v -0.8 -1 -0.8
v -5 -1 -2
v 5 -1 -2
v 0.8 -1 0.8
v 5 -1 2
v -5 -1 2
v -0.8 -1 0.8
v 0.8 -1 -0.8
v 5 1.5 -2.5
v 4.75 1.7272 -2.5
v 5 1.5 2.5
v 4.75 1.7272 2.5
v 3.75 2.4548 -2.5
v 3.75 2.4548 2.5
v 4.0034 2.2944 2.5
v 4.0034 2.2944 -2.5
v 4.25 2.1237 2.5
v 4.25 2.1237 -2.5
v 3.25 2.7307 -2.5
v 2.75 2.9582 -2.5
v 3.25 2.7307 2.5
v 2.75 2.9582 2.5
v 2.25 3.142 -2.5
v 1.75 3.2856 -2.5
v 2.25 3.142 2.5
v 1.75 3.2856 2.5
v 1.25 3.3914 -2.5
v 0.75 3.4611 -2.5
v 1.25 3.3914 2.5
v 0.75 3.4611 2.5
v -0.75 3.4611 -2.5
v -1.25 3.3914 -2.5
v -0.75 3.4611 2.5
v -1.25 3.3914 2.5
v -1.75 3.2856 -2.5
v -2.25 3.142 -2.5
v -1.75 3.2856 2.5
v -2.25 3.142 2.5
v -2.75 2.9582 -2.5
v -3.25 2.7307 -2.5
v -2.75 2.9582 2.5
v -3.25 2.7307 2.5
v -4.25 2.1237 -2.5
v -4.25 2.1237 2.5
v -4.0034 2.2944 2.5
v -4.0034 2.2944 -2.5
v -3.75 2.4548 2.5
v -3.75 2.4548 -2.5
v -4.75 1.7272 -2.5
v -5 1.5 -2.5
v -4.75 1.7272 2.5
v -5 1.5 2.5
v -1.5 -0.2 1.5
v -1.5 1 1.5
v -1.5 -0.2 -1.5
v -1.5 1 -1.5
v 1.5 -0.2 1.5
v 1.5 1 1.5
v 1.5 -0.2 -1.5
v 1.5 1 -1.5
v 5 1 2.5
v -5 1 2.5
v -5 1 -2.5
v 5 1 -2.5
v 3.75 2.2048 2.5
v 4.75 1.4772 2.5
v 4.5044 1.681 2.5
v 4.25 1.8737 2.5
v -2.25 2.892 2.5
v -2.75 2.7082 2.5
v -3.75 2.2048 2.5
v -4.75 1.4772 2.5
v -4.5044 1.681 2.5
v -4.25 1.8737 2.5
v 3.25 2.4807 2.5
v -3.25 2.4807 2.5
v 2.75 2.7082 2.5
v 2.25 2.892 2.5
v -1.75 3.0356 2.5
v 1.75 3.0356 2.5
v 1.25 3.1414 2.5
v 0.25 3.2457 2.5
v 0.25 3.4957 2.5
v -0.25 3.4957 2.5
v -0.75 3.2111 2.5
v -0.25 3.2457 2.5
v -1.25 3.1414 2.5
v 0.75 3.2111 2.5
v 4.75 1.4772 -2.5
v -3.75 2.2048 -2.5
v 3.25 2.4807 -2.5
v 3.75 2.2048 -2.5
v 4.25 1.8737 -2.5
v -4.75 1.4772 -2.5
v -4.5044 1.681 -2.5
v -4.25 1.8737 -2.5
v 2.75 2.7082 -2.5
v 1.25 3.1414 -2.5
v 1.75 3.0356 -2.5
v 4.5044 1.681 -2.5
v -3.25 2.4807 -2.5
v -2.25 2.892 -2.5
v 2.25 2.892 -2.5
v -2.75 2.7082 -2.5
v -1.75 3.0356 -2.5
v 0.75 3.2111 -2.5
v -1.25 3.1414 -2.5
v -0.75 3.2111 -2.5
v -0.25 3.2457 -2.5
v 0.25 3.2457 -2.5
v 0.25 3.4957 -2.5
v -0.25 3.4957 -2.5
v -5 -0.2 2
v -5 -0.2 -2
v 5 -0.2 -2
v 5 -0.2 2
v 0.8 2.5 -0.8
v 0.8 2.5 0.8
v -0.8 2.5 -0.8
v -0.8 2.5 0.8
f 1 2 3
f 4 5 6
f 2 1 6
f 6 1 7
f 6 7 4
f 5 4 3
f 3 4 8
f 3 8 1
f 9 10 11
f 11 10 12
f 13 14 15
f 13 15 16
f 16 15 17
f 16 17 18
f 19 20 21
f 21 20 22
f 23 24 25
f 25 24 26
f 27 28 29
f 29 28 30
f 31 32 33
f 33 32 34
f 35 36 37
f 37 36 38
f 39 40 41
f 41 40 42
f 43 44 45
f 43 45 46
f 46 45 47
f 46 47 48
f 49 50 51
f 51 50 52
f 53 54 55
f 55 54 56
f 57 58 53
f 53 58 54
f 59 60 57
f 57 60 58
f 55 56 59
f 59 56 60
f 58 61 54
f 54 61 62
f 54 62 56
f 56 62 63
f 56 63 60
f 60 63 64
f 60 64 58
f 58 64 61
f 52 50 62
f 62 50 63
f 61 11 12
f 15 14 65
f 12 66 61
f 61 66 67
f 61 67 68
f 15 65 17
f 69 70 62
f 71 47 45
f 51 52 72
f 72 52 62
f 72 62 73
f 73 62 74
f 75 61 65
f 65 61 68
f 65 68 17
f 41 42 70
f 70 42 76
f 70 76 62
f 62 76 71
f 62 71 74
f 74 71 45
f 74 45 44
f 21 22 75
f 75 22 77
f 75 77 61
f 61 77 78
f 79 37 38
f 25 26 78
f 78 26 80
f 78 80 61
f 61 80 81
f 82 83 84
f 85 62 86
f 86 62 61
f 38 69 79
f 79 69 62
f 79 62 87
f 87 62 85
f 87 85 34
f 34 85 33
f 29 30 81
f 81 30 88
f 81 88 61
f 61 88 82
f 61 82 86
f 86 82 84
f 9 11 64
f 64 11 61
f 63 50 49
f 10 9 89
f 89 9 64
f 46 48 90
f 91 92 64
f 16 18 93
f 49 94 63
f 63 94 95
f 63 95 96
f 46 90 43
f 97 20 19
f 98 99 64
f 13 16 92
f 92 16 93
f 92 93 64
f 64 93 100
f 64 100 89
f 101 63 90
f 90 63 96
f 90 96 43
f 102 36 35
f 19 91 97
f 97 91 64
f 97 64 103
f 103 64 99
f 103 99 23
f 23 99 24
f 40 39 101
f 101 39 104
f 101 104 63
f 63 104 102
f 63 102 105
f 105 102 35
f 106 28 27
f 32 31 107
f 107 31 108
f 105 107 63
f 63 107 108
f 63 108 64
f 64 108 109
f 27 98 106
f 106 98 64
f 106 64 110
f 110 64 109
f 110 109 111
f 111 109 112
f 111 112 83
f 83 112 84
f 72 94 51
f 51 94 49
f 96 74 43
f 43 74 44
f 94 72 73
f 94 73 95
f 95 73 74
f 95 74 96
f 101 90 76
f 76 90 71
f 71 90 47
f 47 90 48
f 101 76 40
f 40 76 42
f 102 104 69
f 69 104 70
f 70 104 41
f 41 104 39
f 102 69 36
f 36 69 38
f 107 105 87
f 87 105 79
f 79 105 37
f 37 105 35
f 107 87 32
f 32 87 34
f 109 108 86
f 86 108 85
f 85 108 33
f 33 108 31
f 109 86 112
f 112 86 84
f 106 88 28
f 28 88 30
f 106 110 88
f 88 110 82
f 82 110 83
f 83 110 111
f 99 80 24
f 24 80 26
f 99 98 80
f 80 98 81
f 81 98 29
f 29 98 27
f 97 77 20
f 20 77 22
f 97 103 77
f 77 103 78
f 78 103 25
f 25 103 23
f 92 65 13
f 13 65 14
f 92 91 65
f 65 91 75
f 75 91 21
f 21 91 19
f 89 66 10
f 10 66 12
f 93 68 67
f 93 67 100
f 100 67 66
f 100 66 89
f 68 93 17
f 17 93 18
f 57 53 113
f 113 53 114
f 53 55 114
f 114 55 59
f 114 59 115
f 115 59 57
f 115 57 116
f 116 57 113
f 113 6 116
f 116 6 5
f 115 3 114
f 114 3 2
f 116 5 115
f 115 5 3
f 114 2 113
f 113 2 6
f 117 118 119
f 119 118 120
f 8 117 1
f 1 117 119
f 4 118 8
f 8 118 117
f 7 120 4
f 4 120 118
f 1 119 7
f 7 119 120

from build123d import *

# Parameters (mm, degrees)
SKETCH_1_W          = 10
SKETCH_1_H          = 5
EXTRUDE_1_DEPTH     = 0.5
SKETCH_2_W          = 3
SKETCH_2_H          = 3
EXTRUDE_2_DEPTH     = 0.5
SKETCH_3_W          = 10
SKETCH_3_H          = 5
EXTRUDE_3_DEPTH     = 0.5
EXTRUDE_4_DEPTH     = 5
CUT_EXTRUDE_3_DEPTH = 5
SKETCH_6_W          = 1.6
SKETCH_6_H          = 1.6
CUT_EXTRUDE_4_DEPTH = 2.5
SKETCH_7_W          = 10
SKETCH_7_H          = 0.5
CUT_EXTRUDE_5_DEPTH = 1
SKETCH_8_W          = 10
SKETCH_8_H          = 4
EXTRUDE_5_DEPTH     = 1
SKETCH_11_W         = 10
SKETCH_11_H         = 4
SKETCH_11_W_2       = 3
SKETCH_11_H_2       = 3
CUT_EXTRUDE_6_DEPTH = 0.7
CUT_EXTRUDE_7_REACH = 8.595
SKETCH_6_2_W        = 1.6
SKETCH_6_2_H        = 1.6


with BuildPart() as part:
    # 草图1 → 凸台-拉伸1 (new body)
    with BuildSketch(Plane(origin=(0, 0, 0), x_dir=(1, 0, 0), z_dir=(0, 1, 0))):
        Rectangle(SKETCH_1_W, SKETCH_1_H)
    extrude(amount=EXTRUDE_1_DEPTH)

    # 草图2 → 凸台-拉伸2 (add)
    with BuildSketch(Plane(origin=(0, 0.5, 0), x_dir=(1, 0, 0), z_dir=(0, 1, 0))):
        Rectangle(SKETCH_2_W, SKETCH_2_H)
    extrude(amount=EXTRUDE_2_DEPTH)

    # 草图3 → 凸台-拉伸3 (add)
    with BuildSketch(Plane(origin=(0, 1, 0), x_dir=(1, 0, 0), z_dir=(0, 1, 0))):
        Rectangle(SKETCH_3_W, SKETCH_3_H)
    extrude(amount=EXTRUDE_3_DEPTH)

    # 草图4 → 凸台-拉伸4 (add)
    with BuildSketch(Plane.XY.offset(2.5)):
        with BuildLine():
            Line((-5, 1.5), (5, 1.5))
            ThreePointArc((5, 1.5), (0, 3.5), (-5, 1.5))
        make_face()
    extrude(amount=-EXTRUDE_4_DEPTH)

    # 草图5 → 切除-拉伸3 (cut)
    with BuildSketch(Plane.XY.offset(2.5)):
        with BuildLine():
            Line((-4.75, 3.826153858), (-4.25, 3.826153858))
            Line((-4.25, 3.826153858), (-4.25, 1.873670062))
            ThreePointArc((-4.25, 1.873670062), (-4.504363668, 1.680951324), (-4.75, 1.477225575))
            Line((-4.75, 1.477225575), (-4.75, 3.826153858))
        make_face()
        with BuildLine():
            Line((-3.75, 3.826153858), (-3.75, 2.204836823))
            ThreePointArc((-3.75, 2.204836823), (-3.502717622, 2.347713704), (-3.25, 2.480740698))
            Line((-3.25, 2.480740698), (-3.25, 3.826153858))
            Line((-3.25, 3.826153858), (-3.75, 3.826153858))
        make_face()
        with BuildLine():
            Line((-2.75, 3.826153858), (-2.75, 2.708203932))
            ThreePointArc((-2.75, 2.708203932), (-2.501688927, 2.804708114), (-2.25, 2.892024376))
            Line((-2.25, 2.892024376), (-2.25, 3.826153858))
            Line((-2.25, 3.826153858), (-2.75, 3.826153858))
        make_face()
        with BuildLine():
            Line((-1.75, 3.826153858), (-1.75, 3.03562364))
            ThreePointArc((-1.75, 3.03562364), (-1.500932598, 3.092933197), (-1.25, 3.141428429))
            Line((-1.25, 3.141428429), (-1.25, 3.826153858))
            Line((-1.25, 3.826153858), (-1.75, 3.826153858))
        make_face()
        with BuildLine():
            Line((-0.75, 3.826153858), (-0.75, 3.211102551))
            ThreePointArc((-0.75, 3.211102551), (-0.500298955, 3.232717398), (-0.25, 3.245688373))
            Line((-0.25, 3.245688373), (-0.25, 3.826153858))
            Line((-0.25, 3.826153858), (-0.75, 3.826153858))
        make_face()
        with BuildLine():
            Line((0.25, 3.826153858), (0.25, 3.245688373))
            ThreePointArc((0.25, 3.245688373), (0.500298955, 3.232717398), (0.75, 3.211102551))
            Line((0.75, 3.211102551), (0.75, 3.826153858))
            Line((0.75, 3.826153858), (0.25, 3.826153858))
        make_face()
        with BuildLine():
            Line((1.25, 3.826153858), (1.25, 3.141428429))
            ThreePointArc((1.25, 3.141428429), (1.500932598, 3.092933197), (1.75, 3.03562364))
            Line((1.75, 3.03562364), (1.75, 3.826153858))
            Line((1.75, 3.826153858), (1.25, 3.826153858))
        make_face()
        with BuildLine():
            Line((2.25, 3.826153858), (2.25, 2.892024376))
            ThreePointArc((2.25, 2.892024376), (2.501688927, 2.804708114), (2.75, 2.708203932))
            Line((2.75, 2.708203932), (2.75, 3.826153858))
            Line((2.75, 3.826153858), (2.25, 3.826153858))
        make_face()
        with BuildLine():
            Line((3.25, 3.826153858), (3.25, 2.480740698))
            ThreePointArc((3.25, 2.480740698), (3.502717622, 2.347713704), (3.75, 2.204836823))
            Line((3.75, 2.204836823), (3.75, 3.826153858))
            Line((3.75, 3.826153858), (3.25, 3.826153858))
        make_face()
        with BuildLine():
            Line((4.25, 3.826153858), (4.25, 1.873670062))
            ThreePointArc((4.25, 1.873670062), (4.504363668, 1.680951324), (4.75, 1.477225575))
            Line((4.75, 1.477225575), (4.75, 3.826153858))
            Line((4.75, 3.826153858), (4.25, 3.826153858))
        make_face()
    extrude(amount=-CUT_EXTRUDE_3_DEPTH, mode=Mode.SUBTRACT)

    # 草图6 → 切除-拉伸4 (cut)
    with BuildSketch(Plane.XZ):
        Rectangle(SKETCH_6_W, SKETCH_6_H)
    extrude(amount=-CUT_EXTRUDE_4_DEPTH, mode=Mode.SUBTRACT)

    # 草图7 → 切除-拉伸5 (cut)
    with BuildSketch(Plane.XZ):
        with Locations((0, 2.25)):
            Rectangle(SKETCH_7_W, SKETCH_7_H)
        with Locations((0, -2.25)):
            Rectangle(SKETCH_7_W, SKETCH_7_H)
    extrude(amount=-CUT_EXTRUDE_5_DEPTH, mode=Mode.SUBTRACT)

    # 草图8 → 凸台-拉伸5 (add)
    with BuildSketch(Plane.XZ):
        Rectangle(SKETCH_8_W, SKETCH_8_H)
    extrude(amount=EXTRUDE_5_DEPTH)

    # 草图11 → 切除-拉伸6 (cut)
    with BuildSketch(Plane(origin=(0, 0.5, 0), x_dir=(1, 0, 0), z_dir=(0, 1, 0))):
        Rectangle(SKETCH_11_W, SKETCH_11_H)
        Rectangle(SKETCH_11_W_2, SKETCH_11_H_2, mode=Mode.SUBTRACT)
    extrude(amount=-CUT_EXTRUDE_6_DEPTH, mode=Mode.SUBTRACT)

    # 草图6<2> → 切除-拉伸7 (cut, up to next)
    with BuildSketch(Plane.XZ, mode=Mode.PRIVATE) as cut_extrude_7_sk1:
        Rectangle(SKETCH_6_2_W, SKETCH_6_2_H)
    cut_extrude_7_tool1 = extrude(cut_extrude_7_sk1.sketch, amount=CUT_EXTRUDE_7_REACH, mode=Mode.PRIVATE) & part.part
    add(cut_extrude_7_tool1.solids().sort_by_distance((0, 0, 0))[0], mode=Mode.SUBTRACT)


solid = part.part
